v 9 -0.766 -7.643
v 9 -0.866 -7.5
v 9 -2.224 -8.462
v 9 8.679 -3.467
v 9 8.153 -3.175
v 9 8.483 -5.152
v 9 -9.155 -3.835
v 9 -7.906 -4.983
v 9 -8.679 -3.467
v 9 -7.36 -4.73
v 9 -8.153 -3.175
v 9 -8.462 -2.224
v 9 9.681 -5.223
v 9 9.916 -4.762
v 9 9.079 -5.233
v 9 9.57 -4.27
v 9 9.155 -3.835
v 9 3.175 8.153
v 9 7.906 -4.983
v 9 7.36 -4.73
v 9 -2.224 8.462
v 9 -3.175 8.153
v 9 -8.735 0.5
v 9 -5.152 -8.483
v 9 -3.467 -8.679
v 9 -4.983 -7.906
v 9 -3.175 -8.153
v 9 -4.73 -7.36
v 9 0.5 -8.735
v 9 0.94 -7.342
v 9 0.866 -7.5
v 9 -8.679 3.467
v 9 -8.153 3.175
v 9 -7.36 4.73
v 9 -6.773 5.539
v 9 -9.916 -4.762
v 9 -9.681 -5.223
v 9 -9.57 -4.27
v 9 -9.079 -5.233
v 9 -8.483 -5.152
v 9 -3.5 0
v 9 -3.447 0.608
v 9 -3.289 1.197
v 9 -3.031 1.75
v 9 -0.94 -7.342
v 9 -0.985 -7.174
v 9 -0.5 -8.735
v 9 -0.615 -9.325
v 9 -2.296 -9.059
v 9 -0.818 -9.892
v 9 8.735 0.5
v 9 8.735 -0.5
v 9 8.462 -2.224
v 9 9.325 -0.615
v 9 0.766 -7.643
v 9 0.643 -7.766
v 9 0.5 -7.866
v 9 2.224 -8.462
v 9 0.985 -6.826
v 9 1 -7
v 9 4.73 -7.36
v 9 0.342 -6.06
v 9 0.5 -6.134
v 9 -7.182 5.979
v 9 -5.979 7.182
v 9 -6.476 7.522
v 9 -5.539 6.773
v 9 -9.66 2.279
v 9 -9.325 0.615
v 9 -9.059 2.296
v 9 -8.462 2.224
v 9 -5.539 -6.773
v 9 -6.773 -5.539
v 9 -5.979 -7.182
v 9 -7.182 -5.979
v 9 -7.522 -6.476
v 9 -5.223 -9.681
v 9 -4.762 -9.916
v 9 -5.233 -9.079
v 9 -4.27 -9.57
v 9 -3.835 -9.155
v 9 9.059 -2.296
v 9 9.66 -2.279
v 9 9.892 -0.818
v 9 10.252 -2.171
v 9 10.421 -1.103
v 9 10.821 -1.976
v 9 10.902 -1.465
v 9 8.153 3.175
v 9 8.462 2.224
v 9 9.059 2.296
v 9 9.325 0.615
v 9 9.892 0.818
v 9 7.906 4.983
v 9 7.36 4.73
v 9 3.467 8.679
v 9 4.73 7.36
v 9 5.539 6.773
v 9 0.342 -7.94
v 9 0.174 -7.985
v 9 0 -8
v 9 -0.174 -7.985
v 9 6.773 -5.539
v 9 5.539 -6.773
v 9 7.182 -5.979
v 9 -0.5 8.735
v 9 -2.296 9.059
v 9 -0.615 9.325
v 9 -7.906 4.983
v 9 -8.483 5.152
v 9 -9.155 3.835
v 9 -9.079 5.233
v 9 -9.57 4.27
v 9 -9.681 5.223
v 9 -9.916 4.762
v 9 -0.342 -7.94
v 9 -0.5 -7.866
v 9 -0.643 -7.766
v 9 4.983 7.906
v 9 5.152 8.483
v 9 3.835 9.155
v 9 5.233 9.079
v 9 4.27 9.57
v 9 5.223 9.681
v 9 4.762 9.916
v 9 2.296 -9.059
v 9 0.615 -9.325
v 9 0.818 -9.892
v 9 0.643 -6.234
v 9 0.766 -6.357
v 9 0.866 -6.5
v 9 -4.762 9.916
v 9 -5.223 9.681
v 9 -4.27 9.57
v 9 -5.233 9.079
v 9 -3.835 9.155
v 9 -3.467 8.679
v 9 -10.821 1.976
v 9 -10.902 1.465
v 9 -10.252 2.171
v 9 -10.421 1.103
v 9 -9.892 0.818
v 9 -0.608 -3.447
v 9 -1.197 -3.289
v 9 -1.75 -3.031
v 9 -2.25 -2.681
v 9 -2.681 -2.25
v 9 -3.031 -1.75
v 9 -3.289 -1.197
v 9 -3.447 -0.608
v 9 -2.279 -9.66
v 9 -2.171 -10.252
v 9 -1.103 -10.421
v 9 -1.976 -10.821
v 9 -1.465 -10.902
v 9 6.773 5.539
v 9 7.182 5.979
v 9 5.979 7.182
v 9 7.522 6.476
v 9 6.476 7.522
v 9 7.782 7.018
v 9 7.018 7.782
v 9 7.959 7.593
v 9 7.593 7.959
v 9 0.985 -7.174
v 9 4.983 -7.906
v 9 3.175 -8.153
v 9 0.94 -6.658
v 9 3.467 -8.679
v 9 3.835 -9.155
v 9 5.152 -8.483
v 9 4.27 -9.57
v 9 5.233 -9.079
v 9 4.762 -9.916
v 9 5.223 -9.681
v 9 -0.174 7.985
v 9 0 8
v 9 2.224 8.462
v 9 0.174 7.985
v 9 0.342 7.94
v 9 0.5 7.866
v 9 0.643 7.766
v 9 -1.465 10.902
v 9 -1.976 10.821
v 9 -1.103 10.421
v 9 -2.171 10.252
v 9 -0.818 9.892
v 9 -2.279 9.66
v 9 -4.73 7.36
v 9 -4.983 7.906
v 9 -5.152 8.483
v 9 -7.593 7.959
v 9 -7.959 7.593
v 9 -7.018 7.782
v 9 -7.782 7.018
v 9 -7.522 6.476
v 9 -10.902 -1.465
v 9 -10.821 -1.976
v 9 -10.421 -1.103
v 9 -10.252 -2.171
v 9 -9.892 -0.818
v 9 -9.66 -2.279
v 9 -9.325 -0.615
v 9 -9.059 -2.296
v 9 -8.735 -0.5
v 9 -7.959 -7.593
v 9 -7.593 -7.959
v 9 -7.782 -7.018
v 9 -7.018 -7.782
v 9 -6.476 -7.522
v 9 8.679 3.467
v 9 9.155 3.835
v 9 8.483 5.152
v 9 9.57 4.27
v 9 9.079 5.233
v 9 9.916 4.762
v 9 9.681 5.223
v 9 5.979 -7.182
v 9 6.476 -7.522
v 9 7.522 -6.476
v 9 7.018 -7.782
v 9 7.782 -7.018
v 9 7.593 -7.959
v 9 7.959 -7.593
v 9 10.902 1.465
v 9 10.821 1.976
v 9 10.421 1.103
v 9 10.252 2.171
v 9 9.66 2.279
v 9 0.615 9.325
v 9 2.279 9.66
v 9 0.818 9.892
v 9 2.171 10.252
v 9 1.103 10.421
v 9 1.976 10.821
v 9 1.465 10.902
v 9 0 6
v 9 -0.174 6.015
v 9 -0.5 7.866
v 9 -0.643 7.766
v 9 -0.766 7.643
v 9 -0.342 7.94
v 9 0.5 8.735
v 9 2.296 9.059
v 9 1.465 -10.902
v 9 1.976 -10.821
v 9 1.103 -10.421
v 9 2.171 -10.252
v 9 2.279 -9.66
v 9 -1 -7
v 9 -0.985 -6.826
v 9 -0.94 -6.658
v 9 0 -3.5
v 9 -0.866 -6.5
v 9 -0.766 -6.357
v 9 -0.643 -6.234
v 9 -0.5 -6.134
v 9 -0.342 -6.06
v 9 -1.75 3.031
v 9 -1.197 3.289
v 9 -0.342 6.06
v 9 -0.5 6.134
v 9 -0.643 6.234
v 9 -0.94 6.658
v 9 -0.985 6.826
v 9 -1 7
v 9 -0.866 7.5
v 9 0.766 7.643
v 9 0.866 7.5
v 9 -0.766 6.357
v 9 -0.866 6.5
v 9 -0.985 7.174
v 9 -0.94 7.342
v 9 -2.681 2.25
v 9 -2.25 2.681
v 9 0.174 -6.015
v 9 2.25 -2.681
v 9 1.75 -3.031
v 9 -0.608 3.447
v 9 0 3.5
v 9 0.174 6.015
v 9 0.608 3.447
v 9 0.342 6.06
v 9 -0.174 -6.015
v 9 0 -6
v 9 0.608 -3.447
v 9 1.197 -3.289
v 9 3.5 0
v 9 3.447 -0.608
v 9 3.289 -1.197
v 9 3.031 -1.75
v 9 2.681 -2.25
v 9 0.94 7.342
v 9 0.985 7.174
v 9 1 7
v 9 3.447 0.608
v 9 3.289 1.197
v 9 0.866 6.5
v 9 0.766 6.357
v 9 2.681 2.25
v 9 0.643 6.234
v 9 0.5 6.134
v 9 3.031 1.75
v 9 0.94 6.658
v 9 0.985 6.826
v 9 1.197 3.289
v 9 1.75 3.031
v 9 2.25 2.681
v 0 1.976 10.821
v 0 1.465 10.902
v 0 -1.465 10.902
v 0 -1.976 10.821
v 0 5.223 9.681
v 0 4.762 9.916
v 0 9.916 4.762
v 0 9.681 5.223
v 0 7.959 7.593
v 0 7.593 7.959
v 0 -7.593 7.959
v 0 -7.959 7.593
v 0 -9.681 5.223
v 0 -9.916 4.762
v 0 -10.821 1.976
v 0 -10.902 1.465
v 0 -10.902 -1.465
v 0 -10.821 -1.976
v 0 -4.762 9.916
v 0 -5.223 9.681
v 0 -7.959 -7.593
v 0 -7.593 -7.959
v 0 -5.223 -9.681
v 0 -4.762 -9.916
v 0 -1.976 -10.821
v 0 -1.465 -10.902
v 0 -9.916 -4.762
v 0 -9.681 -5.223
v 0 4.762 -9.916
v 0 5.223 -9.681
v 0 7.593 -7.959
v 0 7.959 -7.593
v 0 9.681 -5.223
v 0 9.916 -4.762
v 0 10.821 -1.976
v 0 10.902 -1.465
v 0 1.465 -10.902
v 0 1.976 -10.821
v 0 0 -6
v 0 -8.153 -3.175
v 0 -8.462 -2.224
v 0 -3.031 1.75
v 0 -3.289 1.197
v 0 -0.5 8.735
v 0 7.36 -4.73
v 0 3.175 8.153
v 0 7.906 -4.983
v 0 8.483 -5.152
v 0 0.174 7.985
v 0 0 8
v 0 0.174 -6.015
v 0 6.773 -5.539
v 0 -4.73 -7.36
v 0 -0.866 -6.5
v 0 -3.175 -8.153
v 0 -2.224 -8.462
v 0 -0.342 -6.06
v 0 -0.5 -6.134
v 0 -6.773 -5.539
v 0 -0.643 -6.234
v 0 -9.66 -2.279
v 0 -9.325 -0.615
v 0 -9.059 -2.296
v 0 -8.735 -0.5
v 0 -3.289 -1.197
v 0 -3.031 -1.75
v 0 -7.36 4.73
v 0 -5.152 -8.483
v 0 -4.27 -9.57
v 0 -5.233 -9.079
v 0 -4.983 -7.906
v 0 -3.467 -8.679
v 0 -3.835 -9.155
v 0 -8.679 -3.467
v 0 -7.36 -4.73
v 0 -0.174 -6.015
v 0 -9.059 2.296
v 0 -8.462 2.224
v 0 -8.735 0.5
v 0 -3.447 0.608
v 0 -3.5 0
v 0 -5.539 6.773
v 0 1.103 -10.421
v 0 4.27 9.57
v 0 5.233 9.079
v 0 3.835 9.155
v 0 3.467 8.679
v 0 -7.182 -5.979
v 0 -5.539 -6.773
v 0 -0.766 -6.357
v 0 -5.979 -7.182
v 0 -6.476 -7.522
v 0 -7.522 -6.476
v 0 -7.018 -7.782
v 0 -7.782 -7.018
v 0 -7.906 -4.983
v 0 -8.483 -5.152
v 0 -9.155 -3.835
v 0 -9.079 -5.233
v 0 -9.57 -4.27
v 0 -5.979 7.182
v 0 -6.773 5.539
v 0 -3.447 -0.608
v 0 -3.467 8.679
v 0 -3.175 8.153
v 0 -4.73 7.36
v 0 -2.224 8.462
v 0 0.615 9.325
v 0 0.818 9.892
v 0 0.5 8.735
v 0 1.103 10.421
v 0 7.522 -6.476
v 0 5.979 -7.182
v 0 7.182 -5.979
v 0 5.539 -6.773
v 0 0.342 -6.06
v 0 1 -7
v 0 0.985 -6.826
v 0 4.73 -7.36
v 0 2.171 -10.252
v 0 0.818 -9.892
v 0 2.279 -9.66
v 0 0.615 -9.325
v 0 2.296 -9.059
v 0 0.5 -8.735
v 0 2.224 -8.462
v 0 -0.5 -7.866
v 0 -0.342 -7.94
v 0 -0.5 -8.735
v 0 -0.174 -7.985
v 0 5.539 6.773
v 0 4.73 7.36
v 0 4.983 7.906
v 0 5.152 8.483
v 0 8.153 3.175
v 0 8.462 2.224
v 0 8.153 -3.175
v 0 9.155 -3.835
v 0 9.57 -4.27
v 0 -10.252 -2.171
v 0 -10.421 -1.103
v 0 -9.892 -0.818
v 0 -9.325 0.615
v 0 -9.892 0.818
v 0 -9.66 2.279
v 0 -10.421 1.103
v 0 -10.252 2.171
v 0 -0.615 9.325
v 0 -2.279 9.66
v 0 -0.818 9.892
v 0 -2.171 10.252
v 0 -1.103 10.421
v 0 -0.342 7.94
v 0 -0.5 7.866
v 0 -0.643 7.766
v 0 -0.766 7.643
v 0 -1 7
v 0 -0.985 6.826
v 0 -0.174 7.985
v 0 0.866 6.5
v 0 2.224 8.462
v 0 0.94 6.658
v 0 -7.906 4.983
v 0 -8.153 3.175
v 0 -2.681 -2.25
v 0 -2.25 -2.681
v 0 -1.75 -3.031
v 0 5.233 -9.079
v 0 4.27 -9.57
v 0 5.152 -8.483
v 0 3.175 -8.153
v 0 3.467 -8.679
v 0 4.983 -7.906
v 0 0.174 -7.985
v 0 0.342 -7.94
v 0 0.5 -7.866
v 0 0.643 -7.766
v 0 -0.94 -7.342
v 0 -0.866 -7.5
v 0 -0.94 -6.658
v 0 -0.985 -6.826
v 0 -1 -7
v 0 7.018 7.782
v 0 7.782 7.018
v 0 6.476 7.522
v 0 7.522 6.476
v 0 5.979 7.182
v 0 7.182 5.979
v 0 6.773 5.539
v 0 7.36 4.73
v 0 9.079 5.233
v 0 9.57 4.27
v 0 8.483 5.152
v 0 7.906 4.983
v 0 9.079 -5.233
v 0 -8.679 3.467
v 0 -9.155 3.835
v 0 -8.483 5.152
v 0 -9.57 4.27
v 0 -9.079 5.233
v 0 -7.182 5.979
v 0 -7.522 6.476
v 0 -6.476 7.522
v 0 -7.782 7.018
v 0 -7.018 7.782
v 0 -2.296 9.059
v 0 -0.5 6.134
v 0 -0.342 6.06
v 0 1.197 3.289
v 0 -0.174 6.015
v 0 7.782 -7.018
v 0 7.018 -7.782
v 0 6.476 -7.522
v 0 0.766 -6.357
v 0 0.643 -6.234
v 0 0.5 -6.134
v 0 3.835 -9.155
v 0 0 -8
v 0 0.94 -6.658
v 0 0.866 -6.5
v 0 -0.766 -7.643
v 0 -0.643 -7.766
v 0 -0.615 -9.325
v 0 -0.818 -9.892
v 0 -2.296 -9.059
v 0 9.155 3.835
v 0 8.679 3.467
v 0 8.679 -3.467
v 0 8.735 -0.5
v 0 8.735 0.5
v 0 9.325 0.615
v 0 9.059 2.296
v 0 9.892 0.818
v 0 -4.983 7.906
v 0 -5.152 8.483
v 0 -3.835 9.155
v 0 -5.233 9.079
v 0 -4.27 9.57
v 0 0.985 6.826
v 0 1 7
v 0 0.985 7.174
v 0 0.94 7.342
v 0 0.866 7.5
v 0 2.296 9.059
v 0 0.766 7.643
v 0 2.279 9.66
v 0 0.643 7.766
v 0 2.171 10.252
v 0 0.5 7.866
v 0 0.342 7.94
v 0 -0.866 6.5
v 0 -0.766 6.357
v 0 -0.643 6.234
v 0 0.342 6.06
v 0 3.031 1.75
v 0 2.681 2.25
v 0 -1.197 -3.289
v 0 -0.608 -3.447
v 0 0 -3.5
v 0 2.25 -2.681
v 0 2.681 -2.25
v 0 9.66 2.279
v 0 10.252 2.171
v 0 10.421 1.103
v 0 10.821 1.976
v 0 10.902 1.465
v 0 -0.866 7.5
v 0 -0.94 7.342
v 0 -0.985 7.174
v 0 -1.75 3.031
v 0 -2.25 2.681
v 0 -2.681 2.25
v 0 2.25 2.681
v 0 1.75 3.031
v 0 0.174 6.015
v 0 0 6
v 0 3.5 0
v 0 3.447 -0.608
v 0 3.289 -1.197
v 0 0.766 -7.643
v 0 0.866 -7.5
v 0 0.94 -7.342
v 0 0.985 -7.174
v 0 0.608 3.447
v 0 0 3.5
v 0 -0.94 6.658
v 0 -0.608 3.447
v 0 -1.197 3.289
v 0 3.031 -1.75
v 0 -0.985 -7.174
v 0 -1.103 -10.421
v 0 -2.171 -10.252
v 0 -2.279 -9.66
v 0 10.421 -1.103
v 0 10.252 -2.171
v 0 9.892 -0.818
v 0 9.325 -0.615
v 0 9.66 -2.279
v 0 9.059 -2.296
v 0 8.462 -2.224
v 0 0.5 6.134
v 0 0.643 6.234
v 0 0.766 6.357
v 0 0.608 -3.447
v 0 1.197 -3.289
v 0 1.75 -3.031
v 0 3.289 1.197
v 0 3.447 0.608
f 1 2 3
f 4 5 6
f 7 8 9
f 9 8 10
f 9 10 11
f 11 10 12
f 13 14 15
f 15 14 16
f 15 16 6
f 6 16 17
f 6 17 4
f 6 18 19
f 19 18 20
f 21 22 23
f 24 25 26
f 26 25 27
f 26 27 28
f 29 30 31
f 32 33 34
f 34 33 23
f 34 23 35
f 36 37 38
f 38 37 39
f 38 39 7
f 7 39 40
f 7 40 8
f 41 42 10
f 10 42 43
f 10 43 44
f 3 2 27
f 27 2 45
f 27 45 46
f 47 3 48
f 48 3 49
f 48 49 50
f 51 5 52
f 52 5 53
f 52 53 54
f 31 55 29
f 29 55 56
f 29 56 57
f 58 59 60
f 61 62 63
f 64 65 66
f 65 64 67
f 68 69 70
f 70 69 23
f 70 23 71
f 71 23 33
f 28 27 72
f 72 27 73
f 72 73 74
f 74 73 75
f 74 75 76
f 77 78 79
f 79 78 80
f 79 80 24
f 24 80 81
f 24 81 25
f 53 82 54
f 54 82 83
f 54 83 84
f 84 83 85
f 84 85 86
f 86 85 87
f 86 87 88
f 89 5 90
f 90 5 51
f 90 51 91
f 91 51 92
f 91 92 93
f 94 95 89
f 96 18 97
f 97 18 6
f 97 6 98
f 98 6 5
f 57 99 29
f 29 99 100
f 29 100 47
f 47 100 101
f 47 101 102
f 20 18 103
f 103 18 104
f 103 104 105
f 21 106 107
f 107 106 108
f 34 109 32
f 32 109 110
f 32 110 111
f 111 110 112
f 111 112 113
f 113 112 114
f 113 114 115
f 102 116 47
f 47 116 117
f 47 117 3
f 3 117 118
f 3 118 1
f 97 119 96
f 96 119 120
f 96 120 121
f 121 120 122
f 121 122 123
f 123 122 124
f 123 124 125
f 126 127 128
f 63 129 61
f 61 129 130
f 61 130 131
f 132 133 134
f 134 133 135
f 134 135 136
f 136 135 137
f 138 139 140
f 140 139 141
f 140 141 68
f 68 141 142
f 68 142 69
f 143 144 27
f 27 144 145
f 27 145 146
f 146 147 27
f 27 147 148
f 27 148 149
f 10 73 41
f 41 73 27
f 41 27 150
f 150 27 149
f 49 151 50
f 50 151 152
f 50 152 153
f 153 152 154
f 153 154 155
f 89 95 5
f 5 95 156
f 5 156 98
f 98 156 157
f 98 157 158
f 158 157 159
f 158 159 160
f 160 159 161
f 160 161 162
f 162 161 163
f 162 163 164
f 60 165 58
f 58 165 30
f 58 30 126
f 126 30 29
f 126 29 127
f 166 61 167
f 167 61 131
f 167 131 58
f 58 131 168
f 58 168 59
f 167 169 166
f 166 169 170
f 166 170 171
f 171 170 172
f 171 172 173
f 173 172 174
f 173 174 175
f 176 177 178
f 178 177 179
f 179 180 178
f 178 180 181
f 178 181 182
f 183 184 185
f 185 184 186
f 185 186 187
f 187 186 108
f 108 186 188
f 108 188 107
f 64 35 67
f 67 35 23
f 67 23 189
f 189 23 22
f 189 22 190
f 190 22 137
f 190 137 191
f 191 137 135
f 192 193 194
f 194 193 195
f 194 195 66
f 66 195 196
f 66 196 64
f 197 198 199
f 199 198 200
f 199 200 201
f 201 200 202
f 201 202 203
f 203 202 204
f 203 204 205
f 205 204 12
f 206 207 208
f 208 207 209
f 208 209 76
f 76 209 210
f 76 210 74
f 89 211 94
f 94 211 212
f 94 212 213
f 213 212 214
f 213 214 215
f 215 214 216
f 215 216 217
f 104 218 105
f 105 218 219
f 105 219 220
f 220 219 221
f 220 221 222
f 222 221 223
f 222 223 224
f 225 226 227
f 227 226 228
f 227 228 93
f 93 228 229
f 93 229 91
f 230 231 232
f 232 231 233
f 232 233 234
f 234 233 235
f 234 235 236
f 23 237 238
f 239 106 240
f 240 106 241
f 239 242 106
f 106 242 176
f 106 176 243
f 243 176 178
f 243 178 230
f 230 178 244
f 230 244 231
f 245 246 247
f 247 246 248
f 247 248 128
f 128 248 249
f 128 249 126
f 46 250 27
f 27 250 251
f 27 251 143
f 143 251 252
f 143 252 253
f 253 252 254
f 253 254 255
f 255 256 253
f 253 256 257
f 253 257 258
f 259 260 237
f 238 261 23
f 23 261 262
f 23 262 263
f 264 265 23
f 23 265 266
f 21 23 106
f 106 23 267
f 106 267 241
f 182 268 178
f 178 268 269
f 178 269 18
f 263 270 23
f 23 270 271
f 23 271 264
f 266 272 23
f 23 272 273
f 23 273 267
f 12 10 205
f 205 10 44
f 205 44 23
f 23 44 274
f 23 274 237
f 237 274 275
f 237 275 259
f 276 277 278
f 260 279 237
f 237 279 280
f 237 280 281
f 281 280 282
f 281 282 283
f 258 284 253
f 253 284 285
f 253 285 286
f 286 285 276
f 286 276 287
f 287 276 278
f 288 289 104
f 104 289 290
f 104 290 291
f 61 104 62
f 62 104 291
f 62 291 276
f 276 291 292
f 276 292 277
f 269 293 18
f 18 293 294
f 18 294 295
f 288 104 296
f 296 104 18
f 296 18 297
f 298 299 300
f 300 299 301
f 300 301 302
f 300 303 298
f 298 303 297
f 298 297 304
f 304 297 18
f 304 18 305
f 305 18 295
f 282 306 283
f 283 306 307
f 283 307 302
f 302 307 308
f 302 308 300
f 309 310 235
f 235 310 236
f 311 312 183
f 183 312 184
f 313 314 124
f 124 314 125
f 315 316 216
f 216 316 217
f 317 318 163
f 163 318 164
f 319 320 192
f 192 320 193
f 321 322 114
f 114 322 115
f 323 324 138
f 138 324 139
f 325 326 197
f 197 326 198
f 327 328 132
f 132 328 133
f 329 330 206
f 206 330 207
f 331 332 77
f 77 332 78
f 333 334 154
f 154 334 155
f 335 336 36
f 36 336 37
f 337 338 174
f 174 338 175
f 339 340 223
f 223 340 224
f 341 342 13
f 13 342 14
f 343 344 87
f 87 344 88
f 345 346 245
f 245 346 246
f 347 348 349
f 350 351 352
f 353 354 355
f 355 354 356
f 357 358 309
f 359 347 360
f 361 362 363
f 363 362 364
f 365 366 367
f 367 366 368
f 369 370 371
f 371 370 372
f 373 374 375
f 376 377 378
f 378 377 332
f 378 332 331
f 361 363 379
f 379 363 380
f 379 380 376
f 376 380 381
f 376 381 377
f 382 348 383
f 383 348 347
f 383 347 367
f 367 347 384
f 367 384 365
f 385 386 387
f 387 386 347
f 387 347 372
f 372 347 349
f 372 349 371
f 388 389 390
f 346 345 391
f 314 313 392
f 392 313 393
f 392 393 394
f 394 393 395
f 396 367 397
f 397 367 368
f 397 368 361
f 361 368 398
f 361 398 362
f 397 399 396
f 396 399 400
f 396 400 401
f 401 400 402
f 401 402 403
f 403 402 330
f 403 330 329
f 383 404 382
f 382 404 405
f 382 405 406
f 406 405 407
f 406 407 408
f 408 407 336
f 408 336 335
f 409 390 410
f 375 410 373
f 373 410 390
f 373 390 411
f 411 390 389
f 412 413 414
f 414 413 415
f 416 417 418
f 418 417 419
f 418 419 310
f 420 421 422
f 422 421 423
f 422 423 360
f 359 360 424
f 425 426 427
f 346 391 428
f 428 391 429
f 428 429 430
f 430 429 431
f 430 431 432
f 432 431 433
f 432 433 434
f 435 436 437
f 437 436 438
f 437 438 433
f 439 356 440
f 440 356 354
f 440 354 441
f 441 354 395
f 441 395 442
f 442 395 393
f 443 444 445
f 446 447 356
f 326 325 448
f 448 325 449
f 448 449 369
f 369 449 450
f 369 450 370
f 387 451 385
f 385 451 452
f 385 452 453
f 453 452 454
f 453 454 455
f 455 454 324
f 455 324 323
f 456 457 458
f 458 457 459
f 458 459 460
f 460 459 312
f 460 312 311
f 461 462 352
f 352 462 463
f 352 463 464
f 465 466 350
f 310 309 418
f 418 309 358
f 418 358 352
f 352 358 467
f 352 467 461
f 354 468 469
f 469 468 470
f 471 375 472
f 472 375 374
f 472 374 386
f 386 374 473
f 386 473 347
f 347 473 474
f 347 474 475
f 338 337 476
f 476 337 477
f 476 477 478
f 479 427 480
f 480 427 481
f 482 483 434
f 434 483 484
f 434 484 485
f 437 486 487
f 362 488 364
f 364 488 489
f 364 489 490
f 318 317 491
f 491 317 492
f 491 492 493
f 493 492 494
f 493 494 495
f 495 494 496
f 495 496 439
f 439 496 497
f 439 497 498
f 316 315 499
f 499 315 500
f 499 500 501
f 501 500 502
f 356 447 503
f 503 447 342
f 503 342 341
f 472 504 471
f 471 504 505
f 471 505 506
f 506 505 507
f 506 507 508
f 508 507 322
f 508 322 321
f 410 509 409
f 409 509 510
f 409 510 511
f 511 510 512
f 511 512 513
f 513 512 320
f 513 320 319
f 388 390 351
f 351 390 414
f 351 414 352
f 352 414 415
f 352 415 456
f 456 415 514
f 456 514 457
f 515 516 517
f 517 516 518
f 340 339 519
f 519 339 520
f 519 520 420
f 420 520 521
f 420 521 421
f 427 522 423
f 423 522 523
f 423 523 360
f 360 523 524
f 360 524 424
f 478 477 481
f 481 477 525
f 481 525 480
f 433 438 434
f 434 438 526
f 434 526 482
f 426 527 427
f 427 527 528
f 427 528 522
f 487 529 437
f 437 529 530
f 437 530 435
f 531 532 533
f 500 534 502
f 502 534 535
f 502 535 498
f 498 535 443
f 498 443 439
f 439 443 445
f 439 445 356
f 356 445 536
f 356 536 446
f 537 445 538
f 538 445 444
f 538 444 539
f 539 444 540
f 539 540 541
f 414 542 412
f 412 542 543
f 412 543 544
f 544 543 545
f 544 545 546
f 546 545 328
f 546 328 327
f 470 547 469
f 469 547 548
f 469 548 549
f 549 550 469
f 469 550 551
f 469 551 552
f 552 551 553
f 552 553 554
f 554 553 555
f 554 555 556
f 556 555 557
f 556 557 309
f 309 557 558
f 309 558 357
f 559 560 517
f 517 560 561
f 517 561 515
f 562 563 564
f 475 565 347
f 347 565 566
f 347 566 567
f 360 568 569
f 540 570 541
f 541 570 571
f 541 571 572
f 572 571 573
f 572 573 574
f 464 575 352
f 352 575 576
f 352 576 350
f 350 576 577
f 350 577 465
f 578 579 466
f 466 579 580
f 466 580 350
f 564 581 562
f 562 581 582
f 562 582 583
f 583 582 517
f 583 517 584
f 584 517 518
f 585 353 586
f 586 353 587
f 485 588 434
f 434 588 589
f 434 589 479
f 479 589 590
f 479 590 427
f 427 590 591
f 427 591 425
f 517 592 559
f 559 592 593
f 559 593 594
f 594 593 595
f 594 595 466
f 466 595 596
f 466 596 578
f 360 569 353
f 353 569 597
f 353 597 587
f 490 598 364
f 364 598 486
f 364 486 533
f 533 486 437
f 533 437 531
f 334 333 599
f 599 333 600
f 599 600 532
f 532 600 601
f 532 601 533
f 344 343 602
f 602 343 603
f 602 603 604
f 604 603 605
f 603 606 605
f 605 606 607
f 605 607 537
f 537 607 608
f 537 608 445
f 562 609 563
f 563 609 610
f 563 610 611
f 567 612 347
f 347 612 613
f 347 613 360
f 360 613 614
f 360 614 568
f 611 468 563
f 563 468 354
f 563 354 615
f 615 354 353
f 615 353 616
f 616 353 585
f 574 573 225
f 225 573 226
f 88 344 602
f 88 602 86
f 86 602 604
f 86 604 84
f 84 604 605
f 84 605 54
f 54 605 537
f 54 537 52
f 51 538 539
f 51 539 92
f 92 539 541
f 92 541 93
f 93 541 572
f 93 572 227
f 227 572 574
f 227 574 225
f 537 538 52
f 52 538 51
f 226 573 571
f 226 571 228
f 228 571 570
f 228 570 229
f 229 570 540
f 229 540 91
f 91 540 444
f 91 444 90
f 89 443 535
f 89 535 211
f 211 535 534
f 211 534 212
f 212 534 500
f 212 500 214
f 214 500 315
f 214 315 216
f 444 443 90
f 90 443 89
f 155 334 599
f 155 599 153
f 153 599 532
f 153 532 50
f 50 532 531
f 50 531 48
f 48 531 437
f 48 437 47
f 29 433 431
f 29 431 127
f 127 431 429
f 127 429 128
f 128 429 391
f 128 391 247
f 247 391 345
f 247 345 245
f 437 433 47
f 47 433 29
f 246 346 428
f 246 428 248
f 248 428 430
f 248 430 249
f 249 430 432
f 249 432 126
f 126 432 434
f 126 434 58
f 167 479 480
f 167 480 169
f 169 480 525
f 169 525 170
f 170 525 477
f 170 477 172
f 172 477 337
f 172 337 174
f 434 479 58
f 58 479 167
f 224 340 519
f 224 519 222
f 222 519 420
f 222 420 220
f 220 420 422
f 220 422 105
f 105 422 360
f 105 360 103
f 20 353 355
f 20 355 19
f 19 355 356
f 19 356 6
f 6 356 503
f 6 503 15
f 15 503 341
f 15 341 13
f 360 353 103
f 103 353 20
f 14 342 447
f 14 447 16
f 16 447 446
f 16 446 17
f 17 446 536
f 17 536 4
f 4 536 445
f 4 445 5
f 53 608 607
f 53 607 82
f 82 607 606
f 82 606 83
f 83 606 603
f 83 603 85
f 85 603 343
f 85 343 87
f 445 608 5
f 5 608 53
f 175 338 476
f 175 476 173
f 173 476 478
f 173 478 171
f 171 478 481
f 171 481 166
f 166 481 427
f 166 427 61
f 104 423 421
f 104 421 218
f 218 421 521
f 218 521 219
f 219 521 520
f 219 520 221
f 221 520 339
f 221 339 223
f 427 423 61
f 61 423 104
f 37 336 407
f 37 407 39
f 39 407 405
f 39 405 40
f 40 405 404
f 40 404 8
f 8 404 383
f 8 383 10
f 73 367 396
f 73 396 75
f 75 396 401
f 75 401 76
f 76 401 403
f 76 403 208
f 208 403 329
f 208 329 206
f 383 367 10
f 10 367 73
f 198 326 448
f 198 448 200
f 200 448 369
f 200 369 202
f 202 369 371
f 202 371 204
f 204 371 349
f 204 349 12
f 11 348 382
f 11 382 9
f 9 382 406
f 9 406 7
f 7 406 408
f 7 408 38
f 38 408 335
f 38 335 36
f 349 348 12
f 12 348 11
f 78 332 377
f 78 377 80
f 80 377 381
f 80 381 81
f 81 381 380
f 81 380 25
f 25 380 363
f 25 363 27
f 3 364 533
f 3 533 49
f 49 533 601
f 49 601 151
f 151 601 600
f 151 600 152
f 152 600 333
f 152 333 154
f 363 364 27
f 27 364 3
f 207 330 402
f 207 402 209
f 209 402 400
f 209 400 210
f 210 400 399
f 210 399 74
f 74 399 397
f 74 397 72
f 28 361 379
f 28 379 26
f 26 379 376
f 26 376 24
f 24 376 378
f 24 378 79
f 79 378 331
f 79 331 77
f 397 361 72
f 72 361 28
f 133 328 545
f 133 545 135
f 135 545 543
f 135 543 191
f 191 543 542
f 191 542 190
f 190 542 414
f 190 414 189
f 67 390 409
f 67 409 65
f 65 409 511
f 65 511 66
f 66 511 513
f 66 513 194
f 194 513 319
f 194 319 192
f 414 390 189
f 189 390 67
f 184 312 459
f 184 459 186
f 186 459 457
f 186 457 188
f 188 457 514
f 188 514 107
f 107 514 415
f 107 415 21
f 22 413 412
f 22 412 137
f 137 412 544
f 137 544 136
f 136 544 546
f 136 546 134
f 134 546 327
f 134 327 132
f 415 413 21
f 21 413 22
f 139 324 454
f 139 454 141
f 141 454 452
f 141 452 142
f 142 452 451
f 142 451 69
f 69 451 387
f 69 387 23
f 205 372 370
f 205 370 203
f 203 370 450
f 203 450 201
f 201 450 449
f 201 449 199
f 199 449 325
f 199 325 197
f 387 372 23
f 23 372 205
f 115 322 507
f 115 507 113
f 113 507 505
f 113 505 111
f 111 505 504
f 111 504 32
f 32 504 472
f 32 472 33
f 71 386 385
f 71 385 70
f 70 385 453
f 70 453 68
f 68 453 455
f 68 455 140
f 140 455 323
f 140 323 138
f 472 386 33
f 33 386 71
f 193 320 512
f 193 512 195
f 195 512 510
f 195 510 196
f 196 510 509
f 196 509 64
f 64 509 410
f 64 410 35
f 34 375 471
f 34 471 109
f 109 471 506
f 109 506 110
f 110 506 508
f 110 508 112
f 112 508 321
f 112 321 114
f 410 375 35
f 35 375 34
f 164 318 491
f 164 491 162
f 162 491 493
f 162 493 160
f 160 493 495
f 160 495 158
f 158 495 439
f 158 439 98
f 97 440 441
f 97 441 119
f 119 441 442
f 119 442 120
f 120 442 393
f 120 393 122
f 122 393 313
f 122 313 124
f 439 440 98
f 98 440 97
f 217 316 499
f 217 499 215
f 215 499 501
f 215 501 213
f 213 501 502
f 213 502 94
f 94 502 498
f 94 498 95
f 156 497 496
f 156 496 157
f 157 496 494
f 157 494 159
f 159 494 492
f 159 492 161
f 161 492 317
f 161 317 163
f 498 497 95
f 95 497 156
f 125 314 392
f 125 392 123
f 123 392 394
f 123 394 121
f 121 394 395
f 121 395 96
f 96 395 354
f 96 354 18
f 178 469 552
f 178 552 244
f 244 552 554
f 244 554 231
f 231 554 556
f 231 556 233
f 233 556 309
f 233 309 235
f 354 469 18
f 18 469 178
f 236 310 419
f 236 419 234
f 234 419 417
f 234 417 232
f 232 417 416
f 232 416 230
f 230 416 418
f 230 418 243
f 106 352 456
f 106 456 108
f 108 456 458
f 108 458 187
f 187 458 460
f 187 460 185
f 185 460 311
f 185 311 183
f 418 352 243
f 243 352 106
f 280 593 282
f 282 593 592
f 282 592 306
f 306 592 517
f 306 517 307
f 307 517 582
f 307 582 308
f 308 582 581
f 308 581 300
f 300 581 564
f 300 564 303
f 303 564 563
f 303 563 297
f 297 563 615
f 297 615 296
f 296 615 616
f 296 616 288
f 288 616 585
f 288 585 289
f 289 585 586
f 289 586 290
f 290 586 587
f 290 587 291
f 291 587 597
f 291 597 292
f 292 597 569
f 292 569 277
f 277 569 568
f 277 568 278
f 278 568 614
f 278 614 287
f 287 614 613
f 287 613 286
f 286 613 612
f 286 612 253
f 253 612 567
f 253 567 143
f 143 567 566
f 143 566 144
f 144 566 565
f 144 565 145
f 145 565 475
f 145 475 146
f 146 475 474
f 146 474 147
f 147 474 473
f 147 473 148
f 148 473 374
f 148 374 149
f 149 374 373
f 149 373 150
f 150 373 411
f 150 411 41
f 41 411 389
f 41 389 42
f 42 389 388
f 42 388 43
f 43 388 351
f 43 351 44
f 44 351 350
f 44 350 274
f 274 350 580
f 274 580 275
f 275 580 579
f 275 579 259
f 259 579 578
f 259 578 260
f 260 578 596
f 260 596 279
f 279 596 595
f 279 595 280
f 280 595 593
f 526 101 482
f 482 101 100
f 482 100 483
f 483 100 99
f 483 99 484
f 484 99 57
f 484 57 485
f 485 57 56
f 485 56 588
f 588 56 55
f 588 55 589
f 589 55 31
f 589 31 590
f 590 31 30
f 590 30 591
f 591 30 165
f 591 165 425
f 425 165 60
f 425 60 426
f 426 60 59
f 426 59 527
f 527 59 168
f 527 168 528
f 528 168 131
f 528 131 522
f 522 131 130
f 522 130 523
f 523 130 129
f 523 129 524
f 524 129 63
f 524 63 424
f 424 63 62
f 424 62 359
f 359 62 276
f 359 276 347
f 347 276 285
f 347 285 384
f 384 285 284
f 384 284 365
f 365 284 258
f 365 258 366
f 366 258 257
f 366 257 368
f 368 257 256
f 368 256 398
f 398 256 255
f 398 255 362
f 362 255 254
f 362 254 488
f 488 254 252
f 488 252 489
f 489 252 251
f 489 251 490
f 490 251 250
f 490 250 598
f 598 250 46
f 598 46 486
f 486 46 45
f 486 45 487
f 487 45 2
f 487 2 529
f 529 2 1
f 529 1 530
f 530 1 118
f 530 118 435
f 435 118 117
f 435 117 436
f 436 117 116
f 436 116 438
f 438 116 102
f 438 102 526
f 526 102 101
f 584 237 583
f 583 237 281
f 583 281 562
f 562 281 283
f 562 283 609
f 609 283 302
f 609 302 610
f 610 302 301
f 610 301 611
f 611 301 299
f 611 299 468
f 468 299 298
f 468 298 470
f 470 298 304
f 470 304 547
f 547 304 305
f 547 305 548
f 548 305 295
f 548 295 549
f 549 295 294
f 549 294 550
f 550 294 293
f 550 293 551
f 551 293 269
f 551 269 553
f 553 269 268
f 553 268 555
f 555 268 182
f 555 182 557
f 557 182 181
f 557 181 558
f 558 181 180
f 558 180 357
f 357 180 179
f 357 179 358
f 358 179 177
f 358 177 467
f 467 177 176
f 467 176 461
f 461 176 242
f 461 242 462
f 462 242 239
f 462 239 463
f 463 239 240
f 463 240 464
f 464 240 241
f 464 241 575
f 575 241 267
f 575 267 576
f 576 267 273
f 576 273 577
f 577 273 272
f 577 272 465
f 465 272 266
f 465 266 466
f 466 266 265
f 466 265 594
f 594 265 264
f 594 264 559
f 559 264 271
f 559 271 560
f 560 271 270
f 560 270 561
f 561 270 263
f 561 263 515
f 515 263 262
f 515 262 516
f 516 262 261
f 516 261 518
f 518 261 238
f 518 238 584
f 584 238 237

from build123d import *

# Parameters (mm, degrees)
BASPROSKE_W        = 9
BASPROSKE_H        = 11
TOOTHCUT_DEPTH     = 18.972200756
TEETHCUTS_COUNT    = 20
TEETHCUTS_ANGLE    = 342
BORSKE_R           = 3.5
BORE_DEPTH         = 50.0000508
SKETCH1_R          = 1
CUT_EXTRUDE1_DEPTH = 18.852389344


with BuildPart() as part:
    # BasProSke → Base-Revolve (revolve)
    with BuildSketch(Plane(origin=(0, 0, 0), x_dir=(1, 0, 0), z_dir=(0, 1, 0)), mode=Mode.PRIVATE) as base_revolve_sk:
        with Locations((4.5, 5.5)):
            Rectangle(BASPROSKE_W, BASPROSKE_H)
    revolve(base_revolve_sk.sketch.rotate(Axis((-10, 0, 0), (1, 0, 0)), 180), axis=Axis((-10, 0, 0), (1, 0, 0)))

    # TooCutSke → ToothCut (cut, through all)
    with BuildSketch(Plane(origin=(0, 0, 0), x_dir=(0, 0, -1), z_dir=(1, 0, 0))):
        with BuildLine():
            ThreePointArc((0.499924007, 8.734705318), (0, 8.749), (-0.499924007, 8.734705318))
            ThreePointArc((-0.499924007, 8.734705318), (-0.824302243, 9.905497836), (-1.485192705, 10.924909509))
            ThreePointArc((-1.485192705, 10.924909509), (0, 11.0254), (1.485192705, 10.924909509))
            ThreePointArc((1.485192705, 10.924909509), (0.824302243, 9.905497836), (0.499924007, 8.734705318))
        make_face()
    toothcut = extrude(amount=TOOTHCUT_DEPTH, mode=Mode.SUBTRACT)

    # TeethCuts: ToothCut ×20 about axis
    teethcuts_axis = Axis((-10, 0, 0), (1, 0, 0))
    for i in range(1, TEETHCUTS_COUNT):
        add(toothcut.rotate(teethcuts_axis, i * TEETHCUTS_ANGLE / (TEETHCUTS_COUNT - 1)), mode=Mode.SUBTRACT)

    # BorSke → Bore (cut, symmetric)
    with BuildSketch(Plane(origin=(0, 0, 0), x_dir=(0, 0, -1), z_dir=(1, 0, 0))):
        with Locations(Location((0, 0, 0), (0, 0, 180))):
            Circle(BORSKE_R)
    extrude(amount=BORE_DEPTH, both=True, mode=Mode.SUBTRACT)

    # Sketch1 → Cut-Extrude1 (cut, through all)
    with BuildSketch(Plane(origin=(9, 0, 0), x_dir=(0, 0, -1), z_dir=(1, 0, 0))):
        with Locations((-7, 0)):
            Circle(SKETCH1_R)
        with Locations((7, 0)):
            Circle(SKETCH1_R)
    extrude(amount=-CUT_EXTRUDE1_DEPTH, mode=Mode.SUBTRACT)


solid = part.part
